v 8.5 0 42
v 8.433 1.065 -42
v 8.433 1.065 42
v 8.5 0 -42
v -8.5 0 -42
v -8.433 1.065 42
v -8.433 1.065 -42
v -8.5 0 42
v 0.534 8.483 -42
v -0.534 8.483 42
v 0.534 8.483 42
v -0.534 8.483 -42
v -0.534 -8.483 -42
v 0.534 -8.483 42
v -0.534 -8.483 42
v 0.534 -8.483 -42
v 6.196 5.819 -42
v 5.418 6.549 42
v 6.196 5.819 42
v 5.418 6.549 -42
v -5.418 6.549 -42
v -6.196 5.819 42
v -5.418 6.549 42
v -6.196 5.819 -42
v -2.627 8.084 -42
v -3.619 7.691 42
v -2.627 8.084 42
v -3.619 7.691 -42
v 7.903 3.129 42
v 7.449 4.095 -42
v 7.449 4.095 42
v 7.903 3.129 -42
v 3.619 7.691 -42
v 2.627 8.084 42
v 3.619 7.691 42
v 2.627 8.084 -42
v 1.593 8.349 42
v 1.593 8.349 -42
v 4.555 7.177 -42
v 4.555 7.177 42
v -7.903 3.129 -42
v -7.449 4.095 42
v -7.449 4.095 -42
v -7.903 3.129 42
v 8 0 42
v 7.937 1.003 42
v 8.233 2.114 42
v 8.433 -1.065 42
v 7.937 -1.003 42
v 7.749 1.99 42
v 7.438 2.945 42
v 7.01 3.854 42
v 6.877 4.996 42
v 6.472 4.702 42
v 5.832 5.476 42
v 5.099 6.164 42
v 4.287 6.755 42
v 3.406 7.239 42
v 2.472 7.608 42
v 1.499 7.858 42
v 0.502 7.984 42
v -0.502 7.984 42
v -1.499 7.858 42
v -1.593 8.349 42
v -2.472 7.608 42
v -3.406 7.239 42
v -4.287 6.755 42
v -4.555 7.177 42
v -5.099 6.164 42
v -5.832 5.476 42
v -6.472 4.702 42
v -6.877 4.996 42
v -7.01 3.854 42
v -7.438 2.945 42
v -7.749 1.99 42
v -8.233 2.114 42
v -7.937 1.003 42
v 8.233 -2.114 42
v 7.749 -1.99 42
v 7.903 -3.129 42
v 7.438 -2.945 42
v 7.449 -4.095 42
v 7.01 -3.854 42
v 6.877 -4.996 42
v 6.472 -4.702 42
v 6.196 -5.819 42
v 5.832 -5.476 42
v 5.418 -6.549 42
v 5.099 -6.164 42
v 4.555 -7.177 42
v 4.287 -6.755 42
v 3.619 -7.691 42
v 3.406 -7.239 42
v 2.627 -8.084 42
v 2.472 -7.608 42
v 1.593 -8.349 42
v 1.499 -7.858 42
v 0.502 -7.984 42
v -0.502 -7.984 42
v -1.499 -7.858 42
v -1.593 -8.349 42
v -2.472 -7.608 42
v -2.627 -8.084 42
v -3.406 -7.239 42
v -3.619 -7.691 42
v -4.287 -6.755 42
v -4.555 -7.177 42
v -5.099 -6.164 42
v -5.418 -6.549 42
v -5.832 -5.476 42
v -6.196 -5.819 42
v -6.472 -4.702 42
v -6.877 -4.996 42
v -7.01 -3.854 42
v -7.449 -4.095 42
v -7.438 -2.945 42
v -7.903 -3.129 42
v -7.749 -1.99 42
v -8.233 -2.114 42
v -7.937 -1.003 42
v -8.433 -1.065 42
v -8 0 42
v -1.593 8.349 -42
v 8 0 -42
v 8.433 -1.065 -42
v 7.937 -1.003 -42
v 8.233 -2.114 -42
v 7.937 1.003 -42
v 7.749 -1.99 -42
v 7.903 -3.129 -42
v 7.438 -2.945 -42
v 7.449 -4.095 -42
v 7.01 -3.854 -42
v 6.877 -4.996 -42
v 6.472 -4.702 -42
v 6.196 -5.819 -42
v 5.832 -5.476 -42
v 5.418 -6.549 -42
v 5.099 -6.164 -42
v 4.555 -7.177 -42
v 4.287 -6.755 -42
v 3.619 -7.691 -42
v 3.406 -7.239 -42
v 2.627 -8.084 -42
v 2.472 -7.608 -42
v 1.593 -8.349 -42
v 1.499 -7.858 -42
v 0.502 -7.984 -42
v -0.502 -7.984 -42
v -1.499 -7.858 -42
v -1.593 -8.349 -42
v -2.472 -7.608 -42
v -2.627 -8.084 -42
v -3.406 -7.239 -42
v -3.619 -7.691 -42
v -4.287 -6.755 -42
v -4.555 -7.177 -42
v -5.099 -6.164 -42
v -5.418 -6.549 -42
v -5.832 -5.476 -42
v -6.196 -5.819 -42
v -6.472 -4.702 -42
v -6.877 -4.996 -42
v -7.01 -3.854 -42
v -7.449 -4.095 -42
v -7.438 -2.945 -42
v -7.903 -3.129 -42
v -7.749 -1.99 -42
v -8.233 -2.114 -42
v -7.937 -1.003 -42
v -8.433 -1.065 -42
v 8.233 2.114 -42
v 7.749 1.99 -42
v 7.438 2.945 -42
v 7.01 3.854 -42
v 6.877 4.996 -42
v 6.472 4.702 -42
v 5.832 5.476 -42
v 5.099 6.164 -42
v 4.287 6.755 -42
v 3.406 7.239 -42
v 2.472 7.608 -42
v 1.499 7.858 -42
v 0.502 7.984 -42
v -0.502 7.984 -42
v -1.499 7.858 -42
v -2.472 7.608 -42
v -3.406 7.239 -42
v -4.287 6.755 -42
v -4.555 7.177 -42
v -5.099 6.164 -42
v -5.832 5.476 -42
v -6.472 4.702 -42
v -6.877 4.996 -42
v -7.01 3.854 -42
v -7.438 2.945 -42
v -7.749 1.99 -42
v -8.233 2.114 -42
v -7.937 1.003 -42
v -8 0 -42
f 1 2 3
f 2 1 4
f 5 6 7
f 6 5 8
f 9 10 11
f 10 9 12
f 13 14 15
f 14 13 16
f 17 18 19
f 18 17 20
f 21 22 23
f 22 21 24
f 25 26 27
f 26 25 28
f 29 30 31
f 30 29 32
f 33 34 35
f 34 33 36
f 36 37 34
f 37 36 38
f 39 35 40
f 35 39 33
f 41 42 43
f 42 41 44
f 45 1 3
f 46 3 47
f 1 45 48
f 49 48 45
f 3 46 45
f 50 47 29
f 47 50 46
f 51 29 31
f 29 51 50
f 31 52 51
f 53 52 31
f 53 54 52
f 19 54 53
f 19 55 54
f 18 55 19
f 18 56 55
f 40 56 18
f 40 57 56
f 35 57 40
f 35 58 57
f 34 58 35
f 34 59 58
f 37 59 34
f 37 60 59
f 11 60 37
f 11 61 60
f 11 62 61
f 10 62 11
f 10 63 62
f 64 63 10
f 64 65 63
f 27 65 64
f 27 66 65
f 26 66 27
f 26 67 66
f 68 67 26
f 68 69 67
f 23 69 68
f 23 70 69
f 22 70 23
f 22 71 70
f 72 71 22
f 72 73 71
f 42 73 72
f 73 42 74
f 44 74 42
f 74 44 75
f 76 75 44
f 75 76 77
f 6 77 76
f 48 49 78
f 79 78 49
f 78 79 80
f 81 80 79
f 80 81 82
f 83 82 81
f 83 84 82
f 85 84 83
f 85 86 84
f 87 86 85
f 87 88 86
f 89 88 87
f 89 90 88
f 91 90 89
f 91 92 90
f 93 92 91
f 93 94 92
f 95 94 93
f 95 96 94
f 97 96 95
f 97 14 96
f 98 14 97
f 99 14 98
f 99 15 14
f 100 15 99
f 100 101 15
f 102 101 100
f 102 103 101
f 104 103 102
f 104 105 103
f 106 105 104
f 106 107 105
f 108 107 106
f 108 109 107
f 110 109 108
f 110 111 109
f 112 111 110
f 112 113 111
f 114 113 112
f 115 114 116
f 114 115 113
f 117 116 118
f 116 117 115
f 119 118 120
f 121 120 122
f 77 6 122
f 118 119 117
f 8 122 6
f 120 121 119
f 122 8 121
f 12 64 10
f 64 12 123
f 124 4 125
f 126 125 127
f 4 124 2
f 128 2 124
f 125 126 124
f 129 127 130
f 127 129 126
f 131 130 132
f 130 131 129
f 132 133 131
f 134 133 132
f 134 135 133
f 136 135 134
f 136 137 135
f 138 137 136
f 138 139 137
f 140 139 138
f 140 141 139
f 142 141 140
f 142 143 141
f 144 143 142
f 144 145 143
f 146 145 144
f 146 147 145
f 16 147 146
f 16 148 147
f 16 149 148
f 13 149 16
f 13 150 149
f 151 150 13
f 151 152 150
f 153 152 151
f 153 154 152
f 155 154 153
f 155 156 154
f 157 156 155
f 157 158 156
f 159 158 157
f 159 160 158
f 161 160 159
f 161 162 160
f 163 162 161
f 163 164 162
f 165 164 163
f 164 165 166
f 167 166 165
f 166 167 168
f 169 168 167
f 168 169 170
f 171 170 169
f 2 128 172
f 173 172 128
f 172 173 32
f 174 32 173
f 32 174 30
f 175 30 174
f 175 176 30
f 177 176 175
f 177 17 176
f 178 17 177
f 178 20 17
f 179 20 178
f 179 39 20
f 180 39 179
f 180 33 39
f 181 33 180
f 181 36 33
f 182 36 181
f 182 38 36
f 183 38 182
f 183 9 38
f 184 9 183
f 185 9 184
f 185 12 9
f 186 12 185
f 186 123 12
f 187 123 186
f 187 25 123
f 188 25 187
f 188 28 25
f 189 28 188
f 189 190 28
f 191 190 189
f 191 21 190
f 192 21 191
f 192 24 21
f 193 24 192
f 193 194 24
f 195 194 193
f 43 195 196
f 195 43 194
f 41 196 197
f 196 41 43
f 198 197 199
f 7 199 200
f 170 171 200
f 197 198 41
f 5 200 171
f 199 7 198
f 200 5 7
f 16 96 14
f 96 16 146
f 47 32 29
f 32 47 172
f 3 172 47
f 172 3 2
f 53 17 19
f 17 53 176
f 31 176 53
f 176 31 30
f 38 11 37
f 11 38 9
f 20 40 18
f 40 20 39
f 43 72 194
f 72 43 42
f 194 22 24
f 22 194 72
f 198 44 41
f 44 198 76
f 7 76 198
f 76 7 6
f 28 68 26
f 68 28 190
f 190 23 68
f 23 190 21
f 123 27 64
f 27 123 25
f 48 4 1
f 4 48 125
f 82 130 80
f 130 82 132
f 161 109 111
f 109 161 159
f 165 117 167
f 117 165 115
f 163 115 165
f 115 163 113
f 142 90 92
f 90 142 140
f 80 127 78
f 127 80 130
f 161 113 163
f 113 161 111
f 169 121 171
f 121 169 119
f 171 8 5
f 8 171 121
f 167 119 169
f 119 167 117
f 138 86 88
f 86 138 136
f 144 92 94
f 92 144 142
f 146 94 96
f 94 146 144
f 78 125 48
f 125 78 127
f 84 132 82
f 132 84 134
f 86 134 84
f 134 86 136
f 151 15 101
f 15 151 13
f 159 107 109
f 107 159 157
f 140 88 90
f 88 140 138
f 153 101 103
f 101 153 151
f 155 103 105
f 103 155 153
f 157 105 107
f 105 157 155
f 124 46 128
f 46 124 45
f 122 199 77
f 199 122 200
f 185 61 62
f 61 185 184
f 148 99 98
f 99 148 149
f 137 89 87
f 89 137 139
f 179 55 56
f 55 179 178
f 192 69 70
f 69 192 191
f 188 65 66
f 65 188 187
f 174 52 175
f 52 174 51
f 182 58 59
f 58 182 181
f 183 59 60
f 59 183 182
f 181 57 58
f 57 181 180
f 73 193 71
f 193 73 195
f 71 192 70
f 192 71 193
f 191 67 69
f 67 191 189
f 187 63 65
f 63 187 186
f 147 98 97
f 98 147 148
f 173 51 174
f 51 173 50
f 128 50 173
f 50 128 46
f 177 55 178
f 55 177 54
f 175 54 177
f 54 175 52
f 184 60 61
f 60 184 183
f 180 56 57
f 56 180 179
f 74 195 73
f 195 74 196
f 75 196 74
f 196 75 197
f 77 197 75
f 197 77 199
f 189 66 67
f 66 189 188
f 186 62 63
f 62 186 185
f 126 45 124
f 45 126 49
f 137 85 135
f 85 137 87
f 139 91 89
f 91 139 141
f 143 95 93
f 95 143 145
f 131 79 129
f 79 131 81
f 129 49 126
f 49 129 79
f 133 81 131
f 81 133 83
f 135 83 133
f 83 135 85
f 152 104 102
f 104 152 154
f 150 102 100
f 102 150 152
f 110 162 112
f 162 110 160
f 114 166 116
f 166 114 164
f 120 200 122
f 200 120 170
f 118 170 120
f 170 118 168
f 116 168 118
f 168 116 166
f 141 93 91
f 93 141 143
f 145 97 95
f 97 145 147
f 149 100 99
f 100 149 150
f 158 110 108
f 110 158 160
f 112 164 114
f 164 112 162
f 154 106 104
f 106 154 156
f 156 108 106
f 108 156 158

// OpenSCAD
$fn = 50;


difference() {
	union() {
		translate(v = [0, 0, -42.0000000000]) {
			cylinder(h = 84, r = 8.5000000000);
		}
	}
	union() {
		translate(v = [0, 0, -100.0000000000]) {
			cylinder(h = 200, r = 8);
		}
	}
}
